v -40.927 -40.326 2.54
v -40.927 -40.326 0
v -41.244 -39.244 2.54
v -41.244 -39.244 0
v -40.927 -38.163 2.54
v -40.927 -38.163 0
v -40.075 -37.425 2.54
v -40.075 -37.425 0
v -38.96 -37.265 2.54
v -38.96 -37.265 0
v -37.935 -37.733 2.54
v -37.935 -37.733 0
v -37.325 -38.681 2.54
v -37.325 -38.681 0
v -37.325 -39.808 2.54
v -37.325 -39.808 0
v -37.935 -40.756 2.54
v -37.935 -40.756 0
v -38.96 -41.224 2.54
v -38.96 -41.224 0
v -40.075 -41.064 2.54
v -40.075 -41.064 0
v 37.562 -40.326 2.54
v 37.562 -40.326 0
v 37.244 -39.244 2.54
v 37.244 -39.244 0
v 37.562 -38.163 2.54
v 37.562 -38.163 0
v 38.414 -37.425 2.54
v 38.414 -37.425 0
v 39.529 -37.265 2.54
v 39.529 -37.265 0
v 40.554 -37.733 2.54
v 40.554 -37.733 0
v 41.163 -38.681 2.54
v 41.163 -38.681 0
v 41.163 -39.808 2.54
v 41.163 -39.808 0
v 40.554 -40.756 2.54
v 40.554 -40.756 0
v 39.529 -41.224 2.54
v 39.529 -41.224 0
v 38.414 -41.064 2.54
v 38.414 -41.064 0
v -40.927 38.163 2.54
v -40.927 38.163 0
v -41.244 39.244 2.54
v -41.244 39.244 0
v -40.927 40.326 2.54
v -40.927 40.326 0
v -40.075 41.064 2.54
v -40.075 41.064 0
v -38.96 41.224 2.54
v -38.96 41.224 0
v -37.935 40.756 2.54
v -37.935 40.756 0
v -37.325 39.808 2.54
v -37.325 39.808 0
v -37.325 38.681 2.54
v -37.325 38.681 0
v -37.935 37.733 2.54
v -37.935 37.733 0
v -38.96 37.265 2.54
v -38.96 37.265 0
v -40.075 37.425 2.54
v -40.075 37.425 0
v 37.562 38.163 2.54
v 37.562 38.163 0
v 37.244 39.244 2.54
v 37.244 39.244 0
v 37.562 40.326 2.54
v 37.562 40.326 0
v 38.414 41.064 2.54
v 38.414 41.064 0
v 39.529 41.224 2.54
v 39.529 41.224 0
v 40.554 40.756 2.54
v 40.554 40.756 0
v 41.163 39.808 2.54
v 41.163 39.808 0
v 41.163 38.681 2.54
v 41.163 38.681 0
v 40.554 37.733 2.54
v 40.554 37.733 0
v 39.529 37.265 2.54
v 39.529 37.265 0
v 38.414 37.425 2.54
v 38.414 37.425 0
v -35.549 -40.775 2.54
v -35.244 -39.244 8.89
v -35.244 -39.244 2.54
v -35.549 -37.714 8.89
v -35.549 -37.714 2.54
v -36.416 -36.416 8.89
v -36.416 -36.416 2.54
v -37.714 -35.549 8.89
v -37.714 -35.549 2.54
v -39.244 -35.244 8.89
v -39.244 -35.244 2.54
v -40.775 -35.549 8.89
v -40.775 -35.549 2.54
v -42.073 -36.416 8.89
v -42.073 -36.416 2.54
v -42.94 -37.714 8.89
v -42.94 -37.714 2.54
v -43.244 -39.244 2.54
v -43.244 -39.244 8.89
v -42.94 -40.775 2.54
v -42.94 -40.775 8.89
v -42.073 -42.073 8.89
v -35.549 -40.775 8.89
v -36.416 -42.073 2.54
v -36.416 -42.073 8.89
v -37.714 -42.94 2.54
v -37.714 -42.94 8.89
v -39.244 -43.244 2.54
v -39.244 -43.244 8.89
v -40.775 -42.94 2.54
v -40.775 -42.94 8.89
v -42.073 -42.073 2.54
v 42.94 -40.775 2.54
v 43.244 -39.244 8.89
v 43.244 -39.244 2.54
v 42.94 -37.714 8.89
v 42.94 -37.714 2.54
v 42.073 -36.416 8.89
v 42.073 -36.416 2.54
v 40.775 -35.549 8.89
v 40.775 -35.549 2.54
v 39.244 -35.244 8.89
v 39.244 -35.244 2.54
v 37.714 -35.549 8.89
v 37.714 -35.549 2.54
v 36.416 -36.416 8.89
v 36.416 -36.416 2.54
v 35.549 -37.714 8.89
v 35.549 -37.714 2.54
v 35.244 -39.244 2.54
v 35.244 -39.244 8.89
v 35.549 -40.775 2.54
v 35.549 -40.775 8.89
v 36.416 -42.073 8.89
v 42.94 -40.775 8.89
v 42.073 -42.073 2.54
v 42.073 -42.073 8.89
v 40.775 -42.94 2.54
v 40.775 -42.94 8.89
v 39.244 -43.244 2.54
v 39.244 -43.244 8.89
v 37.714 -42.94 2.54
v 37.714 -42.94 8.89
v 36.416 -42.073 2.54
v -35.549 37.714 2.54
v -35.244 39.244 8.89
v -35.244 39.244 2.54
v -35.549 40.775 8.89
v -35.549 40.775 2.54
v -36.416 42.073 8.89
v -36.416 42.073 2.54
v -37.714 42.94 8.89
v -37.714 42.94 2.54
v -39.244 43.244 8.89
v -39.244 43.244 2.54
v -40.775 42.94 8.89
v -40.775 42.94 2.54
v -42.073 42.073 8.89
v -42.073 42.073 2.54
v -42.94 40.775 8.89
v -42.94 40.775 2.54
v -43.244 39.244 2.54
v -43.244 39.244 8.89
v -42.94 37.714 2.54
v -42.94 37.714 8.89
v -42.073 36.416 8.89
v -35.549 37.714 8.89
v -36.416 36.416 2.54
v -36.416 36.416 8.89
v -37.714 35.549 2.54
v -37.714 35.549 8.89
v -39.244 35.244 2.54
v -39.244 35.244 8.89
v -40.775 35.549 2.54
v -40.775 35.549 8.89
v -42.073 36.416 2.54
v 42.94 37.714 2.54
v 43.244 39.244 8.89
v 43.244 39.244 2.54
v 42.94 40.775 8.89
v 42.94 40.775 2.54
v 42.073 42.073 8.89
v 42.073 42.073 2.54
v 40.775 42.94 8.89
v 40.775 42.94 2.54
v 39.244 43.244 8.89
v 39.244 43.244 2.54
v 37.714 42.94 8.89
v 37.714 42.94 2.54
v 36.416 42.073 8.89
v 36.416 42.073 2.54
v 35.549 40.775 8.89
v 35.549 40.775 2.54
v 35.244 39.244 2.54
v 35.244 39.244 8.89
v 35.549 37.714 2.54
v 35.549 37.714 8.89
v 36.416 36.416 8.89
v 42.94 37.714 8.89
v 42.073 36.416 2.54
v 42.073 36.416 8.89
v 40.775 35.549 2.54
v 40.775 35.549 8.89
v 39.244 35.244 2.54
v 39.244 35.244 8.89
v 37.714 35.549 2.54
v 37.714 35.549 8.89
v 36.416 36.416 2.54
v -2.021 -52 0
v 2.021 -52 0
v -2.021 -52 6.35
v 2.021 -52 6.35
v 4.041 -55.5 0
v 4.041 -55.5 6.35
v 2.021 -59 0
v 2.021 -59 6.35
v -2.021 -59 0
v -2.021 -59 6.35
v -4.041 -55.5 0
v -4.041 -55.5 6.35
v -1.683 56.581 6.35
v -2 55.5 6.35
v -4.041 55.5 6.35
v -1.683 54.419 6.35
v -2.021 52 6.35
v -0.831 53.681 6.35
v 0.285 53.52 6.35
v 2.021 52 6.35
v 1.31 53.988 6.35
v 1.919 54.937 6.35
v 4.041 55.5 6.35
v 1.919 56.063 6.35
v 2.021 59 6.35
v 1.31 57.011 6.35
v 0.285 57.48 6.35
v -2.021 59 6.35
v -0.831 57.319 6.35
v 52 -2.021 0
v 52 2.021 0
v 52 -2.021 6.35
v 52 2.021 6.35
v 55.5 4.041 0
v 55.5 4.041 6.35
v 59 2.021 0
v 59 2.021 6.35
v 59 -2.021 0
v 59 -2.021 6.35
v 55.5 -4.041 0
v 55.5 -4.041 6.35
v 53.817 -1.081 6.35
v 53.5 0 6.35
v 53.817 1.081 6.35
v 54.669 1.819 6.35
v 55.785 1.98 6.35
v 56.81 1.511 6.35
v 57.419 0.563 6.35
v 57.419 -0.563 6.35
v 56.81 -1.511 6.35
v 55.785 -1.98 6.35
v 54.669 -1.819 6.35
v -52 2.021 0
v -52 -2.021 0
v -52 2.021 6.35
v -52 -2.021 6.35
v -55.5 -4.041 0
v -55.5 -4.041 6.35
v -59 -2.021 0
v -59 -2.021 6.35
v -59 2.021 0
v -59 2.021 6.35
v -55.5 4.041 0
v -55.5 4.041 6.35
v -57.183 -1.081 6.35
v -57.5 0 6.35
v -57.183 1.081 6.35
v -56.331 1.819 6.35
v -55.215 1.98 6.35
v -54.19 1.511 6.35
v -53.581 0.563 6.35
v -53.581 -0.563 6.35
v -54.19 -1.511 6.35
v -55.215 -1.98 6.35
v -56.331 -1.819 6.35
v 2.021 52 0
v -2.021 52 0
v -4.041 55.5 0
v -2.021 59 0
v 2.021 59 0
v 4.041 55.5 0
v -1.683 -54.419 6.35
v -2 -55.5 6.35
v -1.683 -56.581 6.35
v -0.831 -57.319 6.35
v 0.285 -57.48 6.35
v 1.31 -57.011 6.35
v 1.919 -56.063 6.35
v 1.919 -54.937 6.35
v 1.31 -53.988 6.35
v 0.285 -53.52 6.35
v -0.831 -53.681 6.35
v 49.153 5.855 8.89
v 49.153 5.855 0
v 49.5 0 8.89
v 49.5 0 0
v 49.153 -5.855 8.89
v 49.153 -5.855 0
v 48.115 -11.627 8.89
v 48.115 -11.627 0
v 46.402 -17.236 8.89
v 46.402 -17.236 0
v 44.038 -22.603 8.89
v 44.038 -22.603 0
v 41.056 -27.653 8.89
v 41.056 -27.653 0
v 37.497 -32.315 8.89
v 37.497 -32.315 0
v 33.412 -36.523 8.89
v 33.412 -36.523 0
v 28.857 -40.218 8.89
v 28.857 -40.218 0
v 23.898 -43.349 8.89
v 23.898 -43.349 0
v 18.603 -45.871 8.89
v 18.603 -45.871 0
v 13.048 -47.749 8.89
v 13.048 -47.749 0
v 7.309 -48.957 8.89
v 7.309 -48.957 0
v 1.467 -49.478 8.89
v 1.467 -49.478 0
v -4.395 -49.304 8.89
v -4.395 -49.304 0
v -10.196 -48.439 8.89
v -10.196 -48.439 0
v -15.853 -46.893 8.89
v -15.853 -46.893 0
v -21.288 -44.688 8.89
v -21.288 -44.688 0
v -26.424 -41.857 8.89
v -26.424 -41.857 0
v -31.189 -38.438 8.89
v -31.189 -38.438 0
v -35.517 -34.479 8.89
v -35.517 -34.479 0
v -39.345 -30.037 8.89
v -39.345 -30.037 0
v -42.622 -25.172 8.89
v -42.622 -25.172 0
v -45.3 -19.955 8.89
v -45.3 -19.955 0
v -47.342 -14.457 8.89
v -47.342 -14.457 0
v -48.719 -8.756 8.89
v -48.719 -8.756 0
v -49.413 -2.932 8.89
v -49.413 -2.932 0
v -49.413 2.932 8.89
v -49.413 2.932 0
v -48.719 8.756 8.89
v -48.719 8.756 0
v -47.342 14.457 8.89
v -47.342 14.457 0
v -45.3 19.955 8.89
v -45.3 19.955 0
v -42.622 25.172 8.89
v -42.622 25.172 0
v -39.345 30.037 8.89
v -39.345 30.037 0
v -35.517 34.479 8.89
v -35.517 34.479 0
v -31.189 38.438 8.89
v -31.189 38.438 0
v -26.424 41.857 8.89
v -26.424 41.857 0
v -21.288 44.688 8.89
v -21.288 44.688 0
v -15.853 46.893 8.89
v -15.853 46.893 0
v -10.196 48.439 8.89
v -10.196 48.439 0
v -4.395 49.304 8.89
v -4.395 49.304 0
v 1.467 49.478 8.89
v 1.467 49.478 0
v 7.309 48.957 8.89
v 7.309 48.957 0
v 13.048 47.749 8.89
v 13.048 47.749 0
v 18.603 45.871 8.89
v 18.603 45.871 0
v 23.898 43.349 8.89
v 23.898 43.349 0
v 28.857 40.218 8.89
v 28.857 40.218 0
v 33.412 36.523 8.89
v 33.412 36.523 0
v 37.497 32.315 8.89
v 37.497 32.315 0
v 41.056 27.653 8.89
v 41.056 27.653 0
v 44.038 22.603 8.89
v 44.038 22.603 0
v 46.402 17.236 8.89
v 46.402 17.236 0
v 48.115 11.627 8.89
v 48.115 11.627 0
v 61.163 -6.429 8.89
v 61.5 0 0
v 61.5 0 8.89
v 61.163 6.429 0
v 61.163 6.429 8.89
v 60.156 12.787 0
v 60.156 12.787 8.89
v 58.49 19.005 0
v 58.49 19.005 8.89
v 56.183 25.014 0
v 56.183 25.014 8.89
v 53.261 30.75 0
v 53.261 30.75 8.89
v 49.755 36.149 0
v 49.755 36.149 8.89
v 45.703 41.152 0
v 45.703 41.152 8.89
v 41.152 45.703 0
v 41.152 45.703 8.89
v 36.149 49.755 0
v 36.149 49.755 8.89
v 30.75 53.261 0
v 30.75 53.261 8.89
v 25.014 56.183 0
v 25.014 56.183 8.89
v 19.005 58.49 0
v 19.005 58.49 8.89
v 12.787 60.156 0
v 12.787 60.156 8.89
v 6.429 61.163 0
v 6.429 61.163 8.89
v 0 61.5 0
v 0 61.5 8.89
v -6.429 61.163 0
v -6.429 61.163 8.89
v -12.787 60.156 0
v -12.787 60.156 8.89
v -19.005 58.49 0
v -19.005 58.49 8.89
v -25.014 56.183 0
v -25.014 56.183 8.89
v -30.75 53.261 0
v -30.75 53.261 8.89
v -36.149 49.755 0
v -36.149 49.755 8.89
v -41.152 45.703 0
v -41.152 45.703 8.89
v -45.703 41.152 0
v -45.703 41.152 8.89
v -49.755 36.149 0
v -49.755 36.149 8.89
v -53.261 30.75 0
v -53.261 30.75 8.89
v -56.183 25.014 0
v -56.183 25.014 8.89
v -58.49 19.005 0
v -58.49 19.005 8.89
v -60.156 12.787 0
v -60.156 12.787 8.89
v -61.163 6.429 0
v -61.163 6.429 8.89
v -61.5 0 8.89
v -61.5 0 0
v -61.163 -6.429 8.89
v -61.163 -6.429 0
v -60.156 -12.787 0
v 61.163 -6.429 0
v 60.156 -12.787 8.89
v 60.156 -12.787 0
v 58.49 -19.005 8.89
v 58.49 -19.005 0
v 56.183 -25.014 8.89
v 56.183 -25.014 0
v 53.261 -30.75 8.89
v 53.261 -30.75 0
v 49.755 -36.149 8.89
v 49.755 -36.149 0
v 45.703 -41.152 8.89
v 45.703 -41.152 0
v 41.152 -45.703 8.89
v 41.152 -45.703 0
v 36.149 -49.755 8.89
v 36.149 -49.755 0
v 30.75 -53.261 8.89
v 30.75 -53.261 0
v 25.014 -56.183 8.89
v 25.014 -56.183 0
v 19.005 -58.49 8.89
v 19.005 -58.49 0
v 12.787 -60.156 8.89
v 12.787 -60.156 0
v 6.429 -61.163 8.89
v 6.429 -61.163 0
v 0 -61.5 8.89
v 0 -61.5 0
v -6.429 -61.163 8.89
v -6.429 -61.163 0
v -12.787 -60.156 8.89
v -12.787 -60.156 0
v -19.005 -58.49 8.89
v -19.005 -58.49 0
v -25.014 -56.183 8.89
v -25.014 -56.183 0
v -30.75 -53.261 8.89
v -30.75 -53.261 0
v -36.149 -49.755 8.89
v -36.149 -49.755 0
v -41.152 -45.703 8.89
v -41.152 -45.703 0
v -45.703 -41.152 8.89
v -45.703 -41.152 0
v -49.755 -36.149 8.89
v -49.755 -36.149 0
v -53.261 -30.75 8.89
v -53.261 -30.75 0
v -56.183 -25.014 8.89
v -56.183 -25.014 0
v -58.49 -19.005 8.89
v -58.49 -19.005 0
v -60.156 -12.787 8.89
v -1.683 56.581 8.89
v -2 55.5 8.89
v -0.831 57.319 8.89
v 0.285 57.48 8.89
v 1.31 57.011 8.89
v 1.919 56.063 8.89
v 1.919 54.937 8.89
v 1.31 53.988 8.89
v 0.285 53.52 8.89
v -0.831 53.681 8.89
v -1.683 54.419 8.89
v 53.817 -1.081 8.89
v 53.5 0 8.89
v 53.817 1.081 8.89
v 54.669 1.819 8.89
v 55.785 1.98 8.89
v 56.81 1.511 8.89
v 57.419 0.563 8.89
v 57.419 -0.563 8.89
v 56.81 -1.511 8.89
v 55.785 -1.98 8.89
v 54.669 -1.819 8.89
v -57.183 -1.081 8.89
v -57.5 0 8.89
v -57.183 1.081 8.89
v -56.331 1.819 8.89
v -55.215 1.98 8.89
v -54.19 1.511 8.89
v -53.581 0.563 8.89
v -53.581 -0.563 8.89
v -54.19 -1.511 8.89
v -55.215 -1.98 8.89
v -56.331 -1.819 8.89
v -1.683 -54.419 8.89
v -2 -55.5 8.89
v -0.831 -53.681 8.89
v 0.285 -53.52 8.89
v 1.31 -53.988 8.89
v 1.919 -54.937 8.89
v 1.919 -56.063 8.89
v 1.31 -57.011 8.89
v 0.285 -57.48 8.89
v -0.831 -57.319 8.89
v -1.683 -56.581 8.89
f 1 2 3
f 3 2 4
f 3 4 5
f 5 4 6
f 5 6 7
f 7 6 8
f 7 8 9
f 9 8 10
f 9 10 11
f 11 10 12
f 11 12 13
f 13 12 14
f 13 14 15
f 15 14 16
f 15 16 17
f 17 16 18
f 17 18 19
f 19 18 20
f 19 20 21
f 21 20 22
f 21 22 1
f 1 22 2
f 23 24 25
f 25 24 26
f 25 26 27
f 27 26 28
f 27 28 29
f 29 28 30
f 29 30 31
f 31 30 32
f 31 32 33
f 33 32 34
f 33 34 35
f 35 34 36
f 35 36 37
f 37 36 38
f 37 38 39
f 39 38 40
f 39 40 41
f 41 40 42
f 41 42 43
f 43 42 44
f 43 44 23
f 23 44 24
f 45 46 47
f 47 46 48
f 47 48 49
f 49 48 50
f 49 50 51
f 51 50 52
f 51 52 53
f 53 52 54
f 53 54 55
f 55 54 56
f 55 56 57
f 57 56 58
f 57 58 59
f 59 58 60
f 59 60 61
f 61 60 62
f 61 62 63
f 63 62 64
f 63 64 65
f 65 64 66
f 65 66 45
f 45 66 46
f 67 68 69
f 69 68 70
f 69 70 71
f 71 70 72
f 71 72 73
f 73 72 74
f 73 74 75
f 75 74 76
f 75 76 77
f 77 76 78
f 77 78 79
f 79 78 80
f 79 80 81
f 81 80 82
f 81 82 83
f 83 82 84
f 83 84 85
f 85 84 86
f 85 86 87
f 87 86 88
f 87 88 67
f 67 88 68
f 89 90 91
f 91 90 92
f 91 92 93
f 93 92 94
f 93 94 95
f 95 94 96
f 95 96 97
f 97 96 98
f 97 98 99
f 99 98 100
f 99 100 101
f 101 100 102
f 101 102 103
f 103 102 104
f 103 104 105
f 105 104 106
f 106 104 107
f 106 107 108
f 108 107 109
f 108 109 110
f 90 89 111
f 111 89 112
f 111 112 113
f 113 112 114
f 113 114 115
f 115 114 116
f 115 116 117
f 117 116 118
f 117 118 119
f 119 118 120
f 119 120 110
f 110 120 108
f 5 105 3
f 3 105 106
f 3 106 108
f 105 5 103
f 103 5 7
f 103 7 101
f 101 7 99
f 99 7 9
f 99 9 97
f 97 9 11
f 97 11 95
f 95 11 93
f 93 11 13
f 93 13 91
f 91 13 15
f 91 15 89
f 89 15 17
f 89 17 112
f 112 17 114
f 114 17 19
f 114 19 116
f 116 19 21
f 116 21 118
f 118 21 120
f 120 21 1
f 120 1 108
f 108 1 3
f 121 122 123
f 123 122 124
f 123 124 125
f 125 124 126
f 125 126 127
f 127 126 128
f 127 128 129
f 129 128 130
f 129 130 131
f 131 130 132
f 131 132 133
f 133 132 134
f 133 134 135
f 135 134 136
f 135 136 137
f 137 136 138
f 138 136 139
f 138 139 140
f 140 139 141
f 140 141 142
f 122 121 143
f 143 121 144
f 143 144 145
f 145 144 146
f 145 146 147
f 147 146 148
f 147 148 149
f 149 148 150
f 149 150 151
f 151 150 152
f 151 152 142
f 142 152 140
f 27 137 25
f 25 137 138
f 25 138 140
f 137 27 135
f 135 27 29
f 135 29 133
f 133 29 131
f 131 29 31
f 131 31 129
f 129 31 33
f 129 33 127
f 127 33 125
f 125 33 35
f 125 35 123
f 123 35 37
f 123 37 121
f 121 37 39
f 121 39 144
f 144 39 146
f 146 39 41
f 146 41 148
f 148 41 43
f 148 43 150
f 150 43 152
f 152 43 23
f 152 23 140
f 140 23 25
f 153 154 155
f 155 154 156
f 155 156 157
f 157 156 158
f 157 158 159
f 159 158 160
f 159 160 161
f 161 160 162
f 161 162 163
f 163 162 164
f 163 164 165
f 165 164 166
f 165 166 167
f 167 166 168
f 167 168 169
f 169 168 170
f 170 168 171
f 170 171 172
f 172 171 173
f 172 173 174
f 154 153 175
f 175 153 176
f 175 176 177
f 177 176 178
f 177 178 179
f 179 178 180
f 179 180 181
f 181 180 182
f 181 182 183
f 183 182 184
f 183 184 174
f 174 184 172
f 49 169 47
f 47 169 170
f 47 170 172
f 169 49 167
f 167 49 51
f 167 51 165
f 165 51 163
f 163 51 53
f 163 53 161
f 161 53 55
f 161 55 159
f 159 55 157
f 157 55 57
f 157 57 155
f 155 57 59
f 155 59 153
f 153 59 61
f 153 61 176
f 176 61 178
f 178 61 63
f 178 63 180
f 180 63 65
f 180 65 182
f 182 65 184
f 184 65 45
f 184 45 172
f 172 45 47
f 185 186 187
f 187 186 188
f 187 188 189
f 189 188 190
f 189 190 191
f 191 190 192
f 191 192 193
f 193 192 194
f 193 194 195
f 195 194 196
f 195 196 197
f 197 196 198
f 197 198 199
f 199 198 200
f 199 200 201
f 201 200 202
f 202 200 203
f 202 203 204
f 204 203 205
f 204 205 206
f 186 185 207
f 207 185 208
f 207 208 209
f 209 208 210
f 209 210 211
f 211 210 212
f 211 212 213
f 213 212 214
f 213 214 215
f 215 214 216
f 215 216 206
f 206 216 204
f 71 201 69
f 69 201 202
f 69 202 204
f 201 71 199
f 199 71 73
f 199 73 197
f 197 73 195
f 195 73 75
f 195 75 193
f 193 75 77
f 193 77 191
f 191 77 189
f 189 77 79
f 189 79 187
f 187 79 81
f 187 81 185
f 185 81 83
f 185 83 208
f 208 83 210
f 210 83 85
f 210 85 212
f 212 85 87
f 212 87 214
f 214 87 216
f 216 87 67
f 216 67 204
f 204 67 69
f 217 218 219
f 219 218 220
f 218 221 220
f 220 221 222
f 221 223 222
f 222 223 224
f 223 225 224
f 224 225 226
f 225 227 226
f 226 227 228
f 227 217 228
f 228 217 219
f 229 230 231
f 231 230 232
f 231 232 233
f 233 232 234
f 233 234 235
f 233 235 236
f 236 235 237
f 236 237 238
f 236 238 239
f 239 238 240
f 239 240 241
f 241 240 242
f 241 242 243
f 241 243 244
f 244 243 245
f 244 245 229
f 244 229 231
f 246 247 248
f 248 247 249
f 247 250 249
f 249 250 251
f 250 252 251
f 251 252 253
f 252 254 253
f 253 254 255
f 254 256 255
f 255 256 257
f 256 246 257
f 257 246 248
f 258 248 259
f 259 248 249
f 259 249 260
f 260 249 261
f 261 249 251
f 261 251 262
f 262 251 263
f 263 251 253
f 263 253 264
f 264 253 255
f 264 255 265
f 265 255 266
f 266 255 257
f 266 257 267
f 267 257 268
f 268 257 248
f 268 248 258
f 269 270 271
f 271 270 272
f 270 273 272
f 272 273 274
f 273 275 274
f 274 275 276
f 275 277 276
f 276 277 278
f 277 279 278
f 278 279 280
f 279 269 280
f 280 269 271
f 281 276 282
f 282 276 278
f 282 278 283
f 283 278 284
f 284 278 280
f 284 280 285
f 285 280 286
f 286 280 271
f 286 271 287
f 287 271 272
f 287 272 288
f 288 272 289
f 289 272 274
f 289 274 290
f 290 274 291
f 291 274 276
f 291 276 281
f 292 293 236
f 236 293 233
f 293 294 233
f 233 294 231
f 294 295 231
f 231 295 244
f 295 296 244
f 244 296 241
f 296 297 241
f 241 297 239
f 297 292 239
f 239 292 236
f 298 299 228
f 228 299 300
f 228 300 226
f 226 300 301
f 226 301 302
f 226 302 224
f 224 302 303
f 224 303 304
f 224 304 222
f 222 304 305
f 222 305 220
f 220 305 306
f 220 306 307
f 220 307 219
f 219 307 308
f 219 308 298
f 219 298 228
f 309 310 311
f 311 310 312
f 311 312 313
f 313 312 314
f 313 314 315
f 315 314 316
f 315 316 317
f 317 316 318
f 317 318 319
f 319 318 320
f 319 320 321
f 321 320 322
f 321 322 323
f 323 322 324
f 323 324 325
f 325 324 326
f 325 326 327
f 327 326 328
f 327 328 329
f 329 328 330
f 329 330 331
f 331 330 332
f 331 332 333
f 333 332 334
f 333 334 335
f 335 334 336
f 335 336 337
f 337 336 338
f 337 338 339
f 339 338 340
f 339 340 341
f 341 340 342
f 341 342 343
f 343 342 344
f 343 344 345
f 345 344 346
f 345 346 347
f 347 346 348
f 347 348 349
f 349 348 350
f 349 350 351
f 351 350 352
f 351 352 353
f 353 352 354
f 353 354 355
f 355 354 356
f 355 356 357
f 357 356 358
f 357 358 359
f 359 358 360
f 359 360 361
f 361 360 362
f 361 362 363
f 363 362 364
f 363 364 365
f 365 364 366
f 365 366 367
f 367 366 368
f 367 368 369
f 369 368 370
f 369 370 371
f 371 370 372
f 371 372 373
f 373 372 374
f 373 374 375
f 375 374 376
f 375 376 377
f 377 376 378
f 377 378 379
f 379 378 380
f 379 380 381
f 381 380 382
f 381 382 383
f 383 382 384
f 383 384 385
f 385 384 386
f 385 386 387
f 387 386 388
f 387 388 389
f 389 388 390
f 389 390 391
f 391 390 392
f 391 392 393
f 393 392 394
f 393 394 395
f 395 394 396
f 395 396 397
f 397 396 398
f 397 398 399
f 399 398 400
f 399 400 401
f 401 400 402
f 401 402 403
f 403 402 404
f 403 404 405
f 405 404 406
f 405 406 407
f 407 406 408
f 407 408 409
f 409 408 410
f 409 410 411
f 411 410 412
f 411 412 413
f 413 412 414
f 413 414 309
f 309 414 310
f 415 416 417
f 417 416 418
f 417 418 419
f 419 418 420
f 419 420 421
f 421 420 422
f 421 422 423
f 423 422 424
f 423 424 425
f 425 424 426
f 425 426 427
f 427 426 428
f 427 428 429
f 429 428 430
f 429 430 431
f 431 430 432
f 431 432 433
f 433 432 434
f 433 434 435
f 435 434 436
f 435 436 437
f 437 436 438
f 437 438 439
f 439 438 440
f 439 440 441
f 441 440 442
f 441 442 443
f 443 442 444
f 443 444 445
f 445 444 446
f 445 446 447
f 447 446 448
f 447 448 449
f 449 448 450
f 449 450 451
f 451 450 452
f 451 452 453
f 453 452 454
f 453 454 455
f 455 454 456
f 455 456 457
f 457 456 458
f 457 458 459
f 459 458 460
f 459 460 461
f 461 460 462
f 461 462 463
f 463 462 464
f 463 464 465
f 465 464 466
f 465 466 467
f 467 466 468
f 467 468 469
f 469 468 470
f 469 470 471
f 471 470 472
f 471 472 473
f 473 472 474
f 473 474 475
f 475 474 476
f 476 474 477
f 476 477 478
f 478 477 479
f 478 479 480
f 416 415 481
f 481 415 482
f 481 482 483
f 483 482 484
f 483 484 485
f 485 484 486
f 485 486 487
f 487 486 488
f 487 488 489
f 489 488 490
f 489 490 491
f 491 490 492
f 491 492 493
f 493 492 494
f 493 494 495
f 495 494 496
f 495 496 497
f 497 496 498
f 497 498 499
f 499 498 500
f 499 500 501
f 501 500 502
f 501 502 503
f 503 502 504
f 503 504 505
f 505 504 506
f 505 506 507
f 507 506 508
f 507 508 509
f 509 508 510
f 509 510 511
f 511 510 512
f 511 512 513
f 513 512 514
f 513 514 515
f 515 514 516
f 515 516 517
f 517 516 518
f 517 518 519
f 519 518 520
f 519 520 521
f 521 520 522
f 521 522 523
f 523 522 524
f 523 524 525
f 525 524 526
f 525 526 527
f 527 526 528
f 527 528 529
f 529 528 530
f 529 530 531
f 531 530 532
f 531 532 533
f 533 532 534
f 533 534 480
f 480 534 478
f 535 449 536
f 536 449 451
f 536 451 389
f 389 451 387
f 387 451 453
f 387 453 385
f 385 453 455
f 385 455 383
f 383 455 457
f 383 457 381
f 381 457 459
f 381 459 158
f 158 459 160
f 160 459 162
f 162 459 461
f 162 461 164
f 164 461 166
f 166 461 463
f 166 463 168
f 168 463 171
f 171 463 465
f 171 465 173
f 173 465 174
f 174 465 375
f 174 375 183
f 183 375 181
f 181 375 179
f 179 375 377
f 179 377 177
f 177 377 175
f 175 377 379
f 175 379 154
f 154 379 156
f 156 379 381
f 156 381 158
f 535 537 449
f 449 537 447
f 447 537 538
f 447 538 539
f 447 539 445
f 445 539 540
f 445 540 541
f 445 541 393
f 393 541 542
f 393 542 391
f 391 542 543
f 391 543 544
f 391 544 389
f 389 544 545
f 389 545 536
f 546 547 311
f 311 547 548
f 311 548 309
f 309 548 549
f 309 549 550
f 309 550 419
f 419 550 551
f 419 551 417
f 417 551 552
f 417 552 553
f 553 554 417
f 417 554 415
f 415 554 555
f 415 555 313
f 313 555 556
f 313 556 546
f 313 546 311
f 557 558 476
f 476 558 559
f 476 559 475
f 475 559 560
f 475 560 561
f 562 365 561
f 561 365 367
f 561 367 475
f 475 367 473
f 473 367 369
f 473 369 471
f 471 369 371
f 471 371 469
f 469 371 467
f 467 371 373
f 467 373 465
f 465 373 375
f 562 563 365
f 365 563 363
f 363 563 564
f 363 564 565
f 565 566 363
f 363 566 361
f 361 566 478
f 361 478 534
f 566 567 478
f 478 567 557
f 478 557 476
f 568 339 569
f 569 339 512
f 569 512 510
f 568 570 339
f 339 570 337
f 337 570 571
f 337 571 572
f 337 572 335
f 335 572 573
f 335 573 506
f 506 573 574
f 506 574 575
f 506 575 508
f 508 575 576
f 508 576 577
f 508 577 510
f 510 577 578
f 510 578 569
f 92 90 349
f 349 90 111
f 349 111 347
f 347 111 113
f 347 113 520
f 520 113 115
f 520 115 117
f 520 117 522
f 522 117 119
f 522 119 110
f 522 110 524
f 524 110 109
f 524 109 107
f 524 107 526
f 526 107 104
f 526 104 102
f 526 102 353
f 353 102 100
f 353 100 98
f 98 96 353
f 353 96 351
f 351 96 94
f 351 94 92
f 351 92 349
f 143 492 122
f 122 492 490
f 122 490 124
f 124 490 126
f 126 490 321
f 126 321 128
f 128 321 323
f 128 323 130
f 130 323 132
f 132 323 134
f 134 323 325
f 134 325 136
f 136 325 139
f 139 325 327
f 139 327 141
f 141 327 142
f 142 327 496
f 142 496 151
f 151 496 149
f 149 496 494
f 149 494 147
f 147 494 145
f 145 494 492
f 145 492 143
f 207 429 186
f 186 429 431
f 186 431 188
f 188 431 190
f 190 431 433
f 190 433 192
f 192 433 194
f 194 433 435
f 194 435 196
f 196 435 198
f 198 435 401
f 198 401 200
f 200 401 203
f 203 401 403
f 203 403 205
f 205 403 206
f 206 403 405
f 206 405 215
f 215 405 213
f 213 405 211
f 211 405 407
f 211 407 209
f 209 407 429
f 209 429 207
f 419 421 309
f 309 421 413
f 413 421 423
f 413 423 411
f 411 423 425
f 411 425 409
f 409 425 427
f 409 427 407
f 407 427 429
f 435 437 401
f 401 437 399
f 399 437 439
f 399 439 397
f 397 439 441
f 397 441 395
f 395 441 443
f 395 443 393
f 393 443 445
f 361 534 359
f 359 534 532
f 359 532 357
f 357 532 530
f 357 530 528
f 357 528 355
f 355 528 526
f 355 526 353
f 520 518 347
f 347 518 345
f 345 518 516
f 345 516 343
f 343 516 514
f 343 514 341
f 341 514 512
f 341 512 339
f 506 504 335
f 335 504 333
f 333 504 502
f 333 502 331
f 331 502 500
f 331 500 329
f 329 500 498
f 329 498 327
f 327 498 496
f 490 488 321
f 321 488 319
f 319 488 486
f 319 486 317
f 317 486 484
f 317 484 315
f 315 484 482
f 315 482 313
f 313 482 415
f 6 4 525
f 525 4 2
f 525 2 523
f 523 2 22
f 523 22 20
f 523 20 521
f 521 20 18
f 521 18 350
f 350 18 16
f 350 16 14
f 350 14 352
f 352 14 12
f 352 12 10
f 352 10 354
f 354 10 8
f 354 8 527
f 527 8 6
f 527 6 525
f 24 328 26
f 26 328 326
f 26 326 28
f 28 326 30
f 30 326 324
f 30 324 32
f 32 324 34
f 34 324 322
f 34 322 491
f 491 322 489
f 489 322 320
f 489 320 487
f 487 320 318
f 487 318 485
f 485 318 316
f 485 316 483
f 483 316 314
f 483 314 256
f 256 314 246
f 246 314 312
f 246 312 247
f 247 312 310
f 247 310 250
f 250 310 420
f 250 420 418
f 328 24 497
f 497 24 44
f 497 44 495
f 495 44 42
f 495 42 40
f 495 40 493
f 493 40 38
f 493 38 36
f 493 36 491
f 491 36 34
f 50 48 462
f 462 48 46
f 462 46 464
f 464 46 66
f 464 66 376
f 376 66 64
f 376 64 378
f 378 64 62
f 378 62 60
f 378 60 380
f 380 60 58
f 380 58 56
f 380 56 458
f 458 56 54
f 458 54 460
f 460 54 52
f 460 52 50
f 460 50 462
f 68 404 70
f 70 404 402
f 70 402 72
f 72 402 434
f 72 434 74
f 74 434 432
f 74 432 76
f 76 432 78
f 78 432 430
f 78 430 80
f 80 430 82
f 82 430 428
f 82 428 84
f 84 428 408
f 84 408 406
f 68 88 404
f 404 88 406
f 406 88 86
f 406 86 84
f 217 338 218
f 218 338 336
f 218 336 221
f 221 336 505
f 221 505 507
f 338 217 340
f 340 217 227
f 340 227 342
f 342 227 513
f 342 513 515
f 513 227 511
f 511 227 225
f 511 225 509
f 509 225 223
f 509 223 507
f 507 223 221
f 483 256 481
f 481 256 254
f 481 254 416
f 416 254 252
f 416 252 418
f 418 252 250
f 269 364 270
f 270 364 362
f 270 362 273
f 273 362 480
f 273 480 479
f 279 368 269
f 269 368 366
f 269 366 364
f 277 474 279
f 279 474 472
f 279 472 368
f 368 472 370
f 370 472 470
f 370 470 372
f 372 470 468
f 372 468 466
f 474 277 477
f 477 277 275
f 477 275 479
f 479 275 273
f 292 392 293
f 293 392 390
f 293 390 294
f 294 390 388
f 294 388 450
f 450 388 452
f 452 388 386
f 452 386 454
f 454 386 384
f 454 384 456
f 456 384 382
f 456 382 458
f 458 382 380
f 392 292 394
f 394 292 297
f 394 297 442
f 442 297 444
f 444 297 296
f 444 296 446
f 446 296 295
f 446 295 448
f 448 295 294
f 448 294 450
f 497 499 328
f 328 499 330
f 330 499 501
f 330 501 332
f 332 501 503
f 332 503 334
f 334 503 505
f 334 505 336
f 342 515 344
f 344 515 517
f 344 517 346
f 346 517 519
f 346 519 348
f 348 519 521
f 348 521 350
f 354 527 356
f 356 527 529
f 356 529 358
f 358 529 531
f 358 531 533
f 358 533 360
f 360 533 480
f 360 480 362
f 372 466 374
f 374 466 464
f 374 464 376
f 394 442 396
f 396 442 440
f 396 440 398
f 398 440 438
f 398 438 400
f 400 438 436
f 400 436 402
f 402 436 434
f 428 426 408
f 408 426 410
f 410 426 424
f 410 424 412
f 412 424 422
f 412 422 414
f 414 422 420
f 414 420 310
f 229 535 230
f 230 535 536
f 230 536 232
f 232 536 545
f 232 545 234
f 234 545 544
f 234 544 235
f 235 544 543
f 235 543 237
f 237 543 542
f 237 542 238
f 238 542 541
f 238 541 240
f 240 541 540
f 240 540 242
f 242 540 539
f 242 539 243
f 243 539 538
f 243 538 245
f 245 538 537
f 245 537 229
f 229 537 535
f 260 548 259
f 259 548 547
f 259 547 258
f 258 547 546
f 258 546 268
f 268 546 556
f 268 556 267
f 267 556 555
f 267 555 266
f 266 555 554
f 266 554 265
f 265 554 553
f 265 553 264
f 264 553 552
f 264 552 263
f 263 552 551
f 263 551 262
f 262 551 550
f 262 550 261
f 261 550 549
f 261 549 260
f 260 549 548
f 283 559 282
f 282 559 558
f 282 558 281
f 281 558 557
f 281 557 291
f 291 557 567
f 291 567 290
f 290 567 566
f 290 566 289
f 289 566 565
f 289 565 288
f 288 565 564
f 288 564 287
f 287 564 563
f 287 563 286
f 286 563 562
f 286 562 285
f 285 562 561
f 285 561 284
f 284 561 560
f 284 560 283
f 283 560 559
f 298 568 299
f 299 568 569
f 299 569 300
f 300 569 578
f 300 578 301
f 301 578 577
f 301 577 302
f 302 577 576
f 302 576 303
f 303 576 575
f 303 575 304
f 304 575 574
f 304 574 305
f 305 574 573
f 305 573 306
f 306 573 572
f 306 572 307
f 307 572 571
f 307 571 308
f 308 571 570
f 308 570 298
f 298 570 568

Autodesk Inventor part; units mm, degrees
ref_plane "YZ Plane" through (0, 0, 0) normal (1, 0, 0) x (0, 1, 0)
ref_plane "XZ Plane" through (0, 0, 0) normal (0, 1, 0) x (-1, 0, 0)
ref_plane "XY Plane" through (0, 0, 0) normal (0, 0, 1) x (1, 0, 0)
ref_plane "Work Plane1" through (0, 0, 0) normal (0, 0, 1) x (1, 0, 0)
sketch "Sketch1" plane through (0, 0, 0) normal (0, 0, 1) x (1, 0, 0)
  circle A0 centre (0, -55.5) radius 5.1943 projected
  circle A1 centre (-55.5, 0) radius 5.1943 projected
  circle A2 centre (0, 55.5) radius 5.1943 projected
  circle A3 centre (55.5, 0) radius 5.1943 projected
  circle A4 centre (0, 0) radius 61.5 projected
  circle A5 centre (0, 0) radius 49.5 projected
  line L0 (-2.0207, 52) -> (-4.0415, 55.5)
  line L1 (-4.0415, 55.5) -> (-2.0207, 59)
  line L2 (-2.0207, 59) -> (2.0207, 59)
  line L3 (2.0207, 59) -> (4.0415, 55.5)
  line L4 (4.0415, 55.5) -> (2.0207, 52)
  line L5 (2.0207, 52) -> (-2.0207, 52)
  line L6 (0, 55.5) -> (0, 52) construction
  line L7 (-52, -2.0207) -> (-55.5, -4.0415)
  line L8 (-55.5, -4.0415) -> (-59, -2.0207)
  line L9 (-59, -2.0207) -> (-59, 2.0207)
  line L10 (-59, 2.0207) -> (-55.5, 4.0415)
  line L11 (-55.5, 4.0415) -> (-52, 2.0207)
  line L12 (-52, 2.0207) -> (-52, -2.0207)
  line L13 (2.0207, -52) -> (4.0415, -55.5)
  line L14 (4.0415, -55.5) -> (2.0207, -59)
  line L15 (2.0207, -59) -> (-2.0207, -59)
  line L16 (-2.0207, -59) -> (-4.0415, -55.5)
  line L17 (-4.0415, -55.5) -> (-2.0207, -52)
  line L18 (-2.0207, -52) -> (2.0207, -52)
  line L19 (52, 2.0207) -> (55.5, 4.0415)
  line L20 (55.5, 4.0415) -> (59, 2.0207)
  line L21 (59, 2.0207) -> (59, -2.0207)
  line L22 (59, -2.0207) -> (55.5, -4.0415)
  line L23 (55.5, -4.0415) -> (52, -2.0207)
  line L24 (52, -2.0207) -> (52, 2.0207)
  circle A6 centre (0, 55.5) radius 5.1943
  circle A7 centre (-39.2444, 39.2444) radius 5.1943
  line L25 (-39.2444, 39.2444) -> (0, 0)
  line L26 (0, 55.5) -> (0, -55.5)
  circle A8 centre (-39.2444, -39.2444) radius 5.1943
  circle A9 centre (39.2444, -39.2444) radius 5.1943
  circle A10 centre (39.2444, 39.2444) radius 5.1943
  circle A11 centre (0, -55.5) radius 2
  circle A12 centre (55.5, 0) radius 2
  circle A13 centre (0, 55.5) radius 2
  circle A14 centre (-55.5, 0) radius 2
  point P0 (-52, 0)
  point P1 (0, -52)
  point P2 (52, 0)
  dimension "d2" = 7
  dimension "d5" = 360
  dimension "d11" = 45
  dimension "d12" = 10.3886
  dimension "d13" = 55.5
  dimension "d16" = 360
  dimension "d32" = 4
  dimension "d35" = 360
extrude "Extrusion1" add sketch "Sketch1" along normal blind 8.89 contours A11 | L18 L13 L14 L15 L16 L17 | A0 | A7 | A13 | L5 L0 L1 L2 L3 L4 | A2 | A1 | A3 | A4 | L7 L8 L9 L10 L11 L12 | L19 L20 L21 L22 L23 L24 | A8 | A9 | A10 | A12 | A14
extrude "Extrusion2" cut sketch "Sketch1" along normal blind 6.35 contours A11 | L18 L13 L14 L15 L16 L17 | A13 | L5 L0 L1 L2 L3 L4 | L7 L8 L9 L10 L11 L12 | L19 L20 L21 L22 L23 L24 | A12 | A14
sketch "Sketch2" plane through (0, 0, 8.89) normal (0, 0, 1) x (1, 0, 0)
  circle A0 centre (39.2444, 39.2444) radius 5.1943 projected
  circle A1 centre (39.2444, -39.2444) radius 5.1943 projected
  circle A2 centre (-39.2444, -39.2444) radius 5.1943 projected
  circle A3 centre (-39.2444, 39.2444) radius 5.1943 projected
  circle A4 centre (39.2444, -39.2444) radius 4
  circle A5 centre (0, 0) radius 49.5 projected
  circle A6 centre (39.2444, 39.2444) radius 4
  circle A7 centre (-39.2444, 39.2444) radius 4
  circle A8 centre (-39.2444, -39.2444) radius 4
  circle A9 centre (39.2444, -39.2444) radius 2
  circle A10 centre (39.2444, 39.2444) radius 2
  circle A11 centre (-39.2444, 39.2444) radius 2
  circle A12 centre (-39.2444, -39.2444) radius 2
  dimension "d18" = 8
  dimension "d21" = 360
  dimension "d25" = 4
  dimension "d28" = 360
extrude "Extrusion3" cut sketch "Sketch2" against normal blind 6.35 contours A4 | A6 | A7 | A8 | A9 | A10 | A11 | A12
extrude "Extrusion4" cut sketch "Sketch2" against normal blind 15.875 contours A9 | A10 | A11 | A12
extrude "Extrusion5" cut sketch "Sketch1" along normal through all contours A11 | A13 | A12 | A14
properties part number "TopSpacer"
